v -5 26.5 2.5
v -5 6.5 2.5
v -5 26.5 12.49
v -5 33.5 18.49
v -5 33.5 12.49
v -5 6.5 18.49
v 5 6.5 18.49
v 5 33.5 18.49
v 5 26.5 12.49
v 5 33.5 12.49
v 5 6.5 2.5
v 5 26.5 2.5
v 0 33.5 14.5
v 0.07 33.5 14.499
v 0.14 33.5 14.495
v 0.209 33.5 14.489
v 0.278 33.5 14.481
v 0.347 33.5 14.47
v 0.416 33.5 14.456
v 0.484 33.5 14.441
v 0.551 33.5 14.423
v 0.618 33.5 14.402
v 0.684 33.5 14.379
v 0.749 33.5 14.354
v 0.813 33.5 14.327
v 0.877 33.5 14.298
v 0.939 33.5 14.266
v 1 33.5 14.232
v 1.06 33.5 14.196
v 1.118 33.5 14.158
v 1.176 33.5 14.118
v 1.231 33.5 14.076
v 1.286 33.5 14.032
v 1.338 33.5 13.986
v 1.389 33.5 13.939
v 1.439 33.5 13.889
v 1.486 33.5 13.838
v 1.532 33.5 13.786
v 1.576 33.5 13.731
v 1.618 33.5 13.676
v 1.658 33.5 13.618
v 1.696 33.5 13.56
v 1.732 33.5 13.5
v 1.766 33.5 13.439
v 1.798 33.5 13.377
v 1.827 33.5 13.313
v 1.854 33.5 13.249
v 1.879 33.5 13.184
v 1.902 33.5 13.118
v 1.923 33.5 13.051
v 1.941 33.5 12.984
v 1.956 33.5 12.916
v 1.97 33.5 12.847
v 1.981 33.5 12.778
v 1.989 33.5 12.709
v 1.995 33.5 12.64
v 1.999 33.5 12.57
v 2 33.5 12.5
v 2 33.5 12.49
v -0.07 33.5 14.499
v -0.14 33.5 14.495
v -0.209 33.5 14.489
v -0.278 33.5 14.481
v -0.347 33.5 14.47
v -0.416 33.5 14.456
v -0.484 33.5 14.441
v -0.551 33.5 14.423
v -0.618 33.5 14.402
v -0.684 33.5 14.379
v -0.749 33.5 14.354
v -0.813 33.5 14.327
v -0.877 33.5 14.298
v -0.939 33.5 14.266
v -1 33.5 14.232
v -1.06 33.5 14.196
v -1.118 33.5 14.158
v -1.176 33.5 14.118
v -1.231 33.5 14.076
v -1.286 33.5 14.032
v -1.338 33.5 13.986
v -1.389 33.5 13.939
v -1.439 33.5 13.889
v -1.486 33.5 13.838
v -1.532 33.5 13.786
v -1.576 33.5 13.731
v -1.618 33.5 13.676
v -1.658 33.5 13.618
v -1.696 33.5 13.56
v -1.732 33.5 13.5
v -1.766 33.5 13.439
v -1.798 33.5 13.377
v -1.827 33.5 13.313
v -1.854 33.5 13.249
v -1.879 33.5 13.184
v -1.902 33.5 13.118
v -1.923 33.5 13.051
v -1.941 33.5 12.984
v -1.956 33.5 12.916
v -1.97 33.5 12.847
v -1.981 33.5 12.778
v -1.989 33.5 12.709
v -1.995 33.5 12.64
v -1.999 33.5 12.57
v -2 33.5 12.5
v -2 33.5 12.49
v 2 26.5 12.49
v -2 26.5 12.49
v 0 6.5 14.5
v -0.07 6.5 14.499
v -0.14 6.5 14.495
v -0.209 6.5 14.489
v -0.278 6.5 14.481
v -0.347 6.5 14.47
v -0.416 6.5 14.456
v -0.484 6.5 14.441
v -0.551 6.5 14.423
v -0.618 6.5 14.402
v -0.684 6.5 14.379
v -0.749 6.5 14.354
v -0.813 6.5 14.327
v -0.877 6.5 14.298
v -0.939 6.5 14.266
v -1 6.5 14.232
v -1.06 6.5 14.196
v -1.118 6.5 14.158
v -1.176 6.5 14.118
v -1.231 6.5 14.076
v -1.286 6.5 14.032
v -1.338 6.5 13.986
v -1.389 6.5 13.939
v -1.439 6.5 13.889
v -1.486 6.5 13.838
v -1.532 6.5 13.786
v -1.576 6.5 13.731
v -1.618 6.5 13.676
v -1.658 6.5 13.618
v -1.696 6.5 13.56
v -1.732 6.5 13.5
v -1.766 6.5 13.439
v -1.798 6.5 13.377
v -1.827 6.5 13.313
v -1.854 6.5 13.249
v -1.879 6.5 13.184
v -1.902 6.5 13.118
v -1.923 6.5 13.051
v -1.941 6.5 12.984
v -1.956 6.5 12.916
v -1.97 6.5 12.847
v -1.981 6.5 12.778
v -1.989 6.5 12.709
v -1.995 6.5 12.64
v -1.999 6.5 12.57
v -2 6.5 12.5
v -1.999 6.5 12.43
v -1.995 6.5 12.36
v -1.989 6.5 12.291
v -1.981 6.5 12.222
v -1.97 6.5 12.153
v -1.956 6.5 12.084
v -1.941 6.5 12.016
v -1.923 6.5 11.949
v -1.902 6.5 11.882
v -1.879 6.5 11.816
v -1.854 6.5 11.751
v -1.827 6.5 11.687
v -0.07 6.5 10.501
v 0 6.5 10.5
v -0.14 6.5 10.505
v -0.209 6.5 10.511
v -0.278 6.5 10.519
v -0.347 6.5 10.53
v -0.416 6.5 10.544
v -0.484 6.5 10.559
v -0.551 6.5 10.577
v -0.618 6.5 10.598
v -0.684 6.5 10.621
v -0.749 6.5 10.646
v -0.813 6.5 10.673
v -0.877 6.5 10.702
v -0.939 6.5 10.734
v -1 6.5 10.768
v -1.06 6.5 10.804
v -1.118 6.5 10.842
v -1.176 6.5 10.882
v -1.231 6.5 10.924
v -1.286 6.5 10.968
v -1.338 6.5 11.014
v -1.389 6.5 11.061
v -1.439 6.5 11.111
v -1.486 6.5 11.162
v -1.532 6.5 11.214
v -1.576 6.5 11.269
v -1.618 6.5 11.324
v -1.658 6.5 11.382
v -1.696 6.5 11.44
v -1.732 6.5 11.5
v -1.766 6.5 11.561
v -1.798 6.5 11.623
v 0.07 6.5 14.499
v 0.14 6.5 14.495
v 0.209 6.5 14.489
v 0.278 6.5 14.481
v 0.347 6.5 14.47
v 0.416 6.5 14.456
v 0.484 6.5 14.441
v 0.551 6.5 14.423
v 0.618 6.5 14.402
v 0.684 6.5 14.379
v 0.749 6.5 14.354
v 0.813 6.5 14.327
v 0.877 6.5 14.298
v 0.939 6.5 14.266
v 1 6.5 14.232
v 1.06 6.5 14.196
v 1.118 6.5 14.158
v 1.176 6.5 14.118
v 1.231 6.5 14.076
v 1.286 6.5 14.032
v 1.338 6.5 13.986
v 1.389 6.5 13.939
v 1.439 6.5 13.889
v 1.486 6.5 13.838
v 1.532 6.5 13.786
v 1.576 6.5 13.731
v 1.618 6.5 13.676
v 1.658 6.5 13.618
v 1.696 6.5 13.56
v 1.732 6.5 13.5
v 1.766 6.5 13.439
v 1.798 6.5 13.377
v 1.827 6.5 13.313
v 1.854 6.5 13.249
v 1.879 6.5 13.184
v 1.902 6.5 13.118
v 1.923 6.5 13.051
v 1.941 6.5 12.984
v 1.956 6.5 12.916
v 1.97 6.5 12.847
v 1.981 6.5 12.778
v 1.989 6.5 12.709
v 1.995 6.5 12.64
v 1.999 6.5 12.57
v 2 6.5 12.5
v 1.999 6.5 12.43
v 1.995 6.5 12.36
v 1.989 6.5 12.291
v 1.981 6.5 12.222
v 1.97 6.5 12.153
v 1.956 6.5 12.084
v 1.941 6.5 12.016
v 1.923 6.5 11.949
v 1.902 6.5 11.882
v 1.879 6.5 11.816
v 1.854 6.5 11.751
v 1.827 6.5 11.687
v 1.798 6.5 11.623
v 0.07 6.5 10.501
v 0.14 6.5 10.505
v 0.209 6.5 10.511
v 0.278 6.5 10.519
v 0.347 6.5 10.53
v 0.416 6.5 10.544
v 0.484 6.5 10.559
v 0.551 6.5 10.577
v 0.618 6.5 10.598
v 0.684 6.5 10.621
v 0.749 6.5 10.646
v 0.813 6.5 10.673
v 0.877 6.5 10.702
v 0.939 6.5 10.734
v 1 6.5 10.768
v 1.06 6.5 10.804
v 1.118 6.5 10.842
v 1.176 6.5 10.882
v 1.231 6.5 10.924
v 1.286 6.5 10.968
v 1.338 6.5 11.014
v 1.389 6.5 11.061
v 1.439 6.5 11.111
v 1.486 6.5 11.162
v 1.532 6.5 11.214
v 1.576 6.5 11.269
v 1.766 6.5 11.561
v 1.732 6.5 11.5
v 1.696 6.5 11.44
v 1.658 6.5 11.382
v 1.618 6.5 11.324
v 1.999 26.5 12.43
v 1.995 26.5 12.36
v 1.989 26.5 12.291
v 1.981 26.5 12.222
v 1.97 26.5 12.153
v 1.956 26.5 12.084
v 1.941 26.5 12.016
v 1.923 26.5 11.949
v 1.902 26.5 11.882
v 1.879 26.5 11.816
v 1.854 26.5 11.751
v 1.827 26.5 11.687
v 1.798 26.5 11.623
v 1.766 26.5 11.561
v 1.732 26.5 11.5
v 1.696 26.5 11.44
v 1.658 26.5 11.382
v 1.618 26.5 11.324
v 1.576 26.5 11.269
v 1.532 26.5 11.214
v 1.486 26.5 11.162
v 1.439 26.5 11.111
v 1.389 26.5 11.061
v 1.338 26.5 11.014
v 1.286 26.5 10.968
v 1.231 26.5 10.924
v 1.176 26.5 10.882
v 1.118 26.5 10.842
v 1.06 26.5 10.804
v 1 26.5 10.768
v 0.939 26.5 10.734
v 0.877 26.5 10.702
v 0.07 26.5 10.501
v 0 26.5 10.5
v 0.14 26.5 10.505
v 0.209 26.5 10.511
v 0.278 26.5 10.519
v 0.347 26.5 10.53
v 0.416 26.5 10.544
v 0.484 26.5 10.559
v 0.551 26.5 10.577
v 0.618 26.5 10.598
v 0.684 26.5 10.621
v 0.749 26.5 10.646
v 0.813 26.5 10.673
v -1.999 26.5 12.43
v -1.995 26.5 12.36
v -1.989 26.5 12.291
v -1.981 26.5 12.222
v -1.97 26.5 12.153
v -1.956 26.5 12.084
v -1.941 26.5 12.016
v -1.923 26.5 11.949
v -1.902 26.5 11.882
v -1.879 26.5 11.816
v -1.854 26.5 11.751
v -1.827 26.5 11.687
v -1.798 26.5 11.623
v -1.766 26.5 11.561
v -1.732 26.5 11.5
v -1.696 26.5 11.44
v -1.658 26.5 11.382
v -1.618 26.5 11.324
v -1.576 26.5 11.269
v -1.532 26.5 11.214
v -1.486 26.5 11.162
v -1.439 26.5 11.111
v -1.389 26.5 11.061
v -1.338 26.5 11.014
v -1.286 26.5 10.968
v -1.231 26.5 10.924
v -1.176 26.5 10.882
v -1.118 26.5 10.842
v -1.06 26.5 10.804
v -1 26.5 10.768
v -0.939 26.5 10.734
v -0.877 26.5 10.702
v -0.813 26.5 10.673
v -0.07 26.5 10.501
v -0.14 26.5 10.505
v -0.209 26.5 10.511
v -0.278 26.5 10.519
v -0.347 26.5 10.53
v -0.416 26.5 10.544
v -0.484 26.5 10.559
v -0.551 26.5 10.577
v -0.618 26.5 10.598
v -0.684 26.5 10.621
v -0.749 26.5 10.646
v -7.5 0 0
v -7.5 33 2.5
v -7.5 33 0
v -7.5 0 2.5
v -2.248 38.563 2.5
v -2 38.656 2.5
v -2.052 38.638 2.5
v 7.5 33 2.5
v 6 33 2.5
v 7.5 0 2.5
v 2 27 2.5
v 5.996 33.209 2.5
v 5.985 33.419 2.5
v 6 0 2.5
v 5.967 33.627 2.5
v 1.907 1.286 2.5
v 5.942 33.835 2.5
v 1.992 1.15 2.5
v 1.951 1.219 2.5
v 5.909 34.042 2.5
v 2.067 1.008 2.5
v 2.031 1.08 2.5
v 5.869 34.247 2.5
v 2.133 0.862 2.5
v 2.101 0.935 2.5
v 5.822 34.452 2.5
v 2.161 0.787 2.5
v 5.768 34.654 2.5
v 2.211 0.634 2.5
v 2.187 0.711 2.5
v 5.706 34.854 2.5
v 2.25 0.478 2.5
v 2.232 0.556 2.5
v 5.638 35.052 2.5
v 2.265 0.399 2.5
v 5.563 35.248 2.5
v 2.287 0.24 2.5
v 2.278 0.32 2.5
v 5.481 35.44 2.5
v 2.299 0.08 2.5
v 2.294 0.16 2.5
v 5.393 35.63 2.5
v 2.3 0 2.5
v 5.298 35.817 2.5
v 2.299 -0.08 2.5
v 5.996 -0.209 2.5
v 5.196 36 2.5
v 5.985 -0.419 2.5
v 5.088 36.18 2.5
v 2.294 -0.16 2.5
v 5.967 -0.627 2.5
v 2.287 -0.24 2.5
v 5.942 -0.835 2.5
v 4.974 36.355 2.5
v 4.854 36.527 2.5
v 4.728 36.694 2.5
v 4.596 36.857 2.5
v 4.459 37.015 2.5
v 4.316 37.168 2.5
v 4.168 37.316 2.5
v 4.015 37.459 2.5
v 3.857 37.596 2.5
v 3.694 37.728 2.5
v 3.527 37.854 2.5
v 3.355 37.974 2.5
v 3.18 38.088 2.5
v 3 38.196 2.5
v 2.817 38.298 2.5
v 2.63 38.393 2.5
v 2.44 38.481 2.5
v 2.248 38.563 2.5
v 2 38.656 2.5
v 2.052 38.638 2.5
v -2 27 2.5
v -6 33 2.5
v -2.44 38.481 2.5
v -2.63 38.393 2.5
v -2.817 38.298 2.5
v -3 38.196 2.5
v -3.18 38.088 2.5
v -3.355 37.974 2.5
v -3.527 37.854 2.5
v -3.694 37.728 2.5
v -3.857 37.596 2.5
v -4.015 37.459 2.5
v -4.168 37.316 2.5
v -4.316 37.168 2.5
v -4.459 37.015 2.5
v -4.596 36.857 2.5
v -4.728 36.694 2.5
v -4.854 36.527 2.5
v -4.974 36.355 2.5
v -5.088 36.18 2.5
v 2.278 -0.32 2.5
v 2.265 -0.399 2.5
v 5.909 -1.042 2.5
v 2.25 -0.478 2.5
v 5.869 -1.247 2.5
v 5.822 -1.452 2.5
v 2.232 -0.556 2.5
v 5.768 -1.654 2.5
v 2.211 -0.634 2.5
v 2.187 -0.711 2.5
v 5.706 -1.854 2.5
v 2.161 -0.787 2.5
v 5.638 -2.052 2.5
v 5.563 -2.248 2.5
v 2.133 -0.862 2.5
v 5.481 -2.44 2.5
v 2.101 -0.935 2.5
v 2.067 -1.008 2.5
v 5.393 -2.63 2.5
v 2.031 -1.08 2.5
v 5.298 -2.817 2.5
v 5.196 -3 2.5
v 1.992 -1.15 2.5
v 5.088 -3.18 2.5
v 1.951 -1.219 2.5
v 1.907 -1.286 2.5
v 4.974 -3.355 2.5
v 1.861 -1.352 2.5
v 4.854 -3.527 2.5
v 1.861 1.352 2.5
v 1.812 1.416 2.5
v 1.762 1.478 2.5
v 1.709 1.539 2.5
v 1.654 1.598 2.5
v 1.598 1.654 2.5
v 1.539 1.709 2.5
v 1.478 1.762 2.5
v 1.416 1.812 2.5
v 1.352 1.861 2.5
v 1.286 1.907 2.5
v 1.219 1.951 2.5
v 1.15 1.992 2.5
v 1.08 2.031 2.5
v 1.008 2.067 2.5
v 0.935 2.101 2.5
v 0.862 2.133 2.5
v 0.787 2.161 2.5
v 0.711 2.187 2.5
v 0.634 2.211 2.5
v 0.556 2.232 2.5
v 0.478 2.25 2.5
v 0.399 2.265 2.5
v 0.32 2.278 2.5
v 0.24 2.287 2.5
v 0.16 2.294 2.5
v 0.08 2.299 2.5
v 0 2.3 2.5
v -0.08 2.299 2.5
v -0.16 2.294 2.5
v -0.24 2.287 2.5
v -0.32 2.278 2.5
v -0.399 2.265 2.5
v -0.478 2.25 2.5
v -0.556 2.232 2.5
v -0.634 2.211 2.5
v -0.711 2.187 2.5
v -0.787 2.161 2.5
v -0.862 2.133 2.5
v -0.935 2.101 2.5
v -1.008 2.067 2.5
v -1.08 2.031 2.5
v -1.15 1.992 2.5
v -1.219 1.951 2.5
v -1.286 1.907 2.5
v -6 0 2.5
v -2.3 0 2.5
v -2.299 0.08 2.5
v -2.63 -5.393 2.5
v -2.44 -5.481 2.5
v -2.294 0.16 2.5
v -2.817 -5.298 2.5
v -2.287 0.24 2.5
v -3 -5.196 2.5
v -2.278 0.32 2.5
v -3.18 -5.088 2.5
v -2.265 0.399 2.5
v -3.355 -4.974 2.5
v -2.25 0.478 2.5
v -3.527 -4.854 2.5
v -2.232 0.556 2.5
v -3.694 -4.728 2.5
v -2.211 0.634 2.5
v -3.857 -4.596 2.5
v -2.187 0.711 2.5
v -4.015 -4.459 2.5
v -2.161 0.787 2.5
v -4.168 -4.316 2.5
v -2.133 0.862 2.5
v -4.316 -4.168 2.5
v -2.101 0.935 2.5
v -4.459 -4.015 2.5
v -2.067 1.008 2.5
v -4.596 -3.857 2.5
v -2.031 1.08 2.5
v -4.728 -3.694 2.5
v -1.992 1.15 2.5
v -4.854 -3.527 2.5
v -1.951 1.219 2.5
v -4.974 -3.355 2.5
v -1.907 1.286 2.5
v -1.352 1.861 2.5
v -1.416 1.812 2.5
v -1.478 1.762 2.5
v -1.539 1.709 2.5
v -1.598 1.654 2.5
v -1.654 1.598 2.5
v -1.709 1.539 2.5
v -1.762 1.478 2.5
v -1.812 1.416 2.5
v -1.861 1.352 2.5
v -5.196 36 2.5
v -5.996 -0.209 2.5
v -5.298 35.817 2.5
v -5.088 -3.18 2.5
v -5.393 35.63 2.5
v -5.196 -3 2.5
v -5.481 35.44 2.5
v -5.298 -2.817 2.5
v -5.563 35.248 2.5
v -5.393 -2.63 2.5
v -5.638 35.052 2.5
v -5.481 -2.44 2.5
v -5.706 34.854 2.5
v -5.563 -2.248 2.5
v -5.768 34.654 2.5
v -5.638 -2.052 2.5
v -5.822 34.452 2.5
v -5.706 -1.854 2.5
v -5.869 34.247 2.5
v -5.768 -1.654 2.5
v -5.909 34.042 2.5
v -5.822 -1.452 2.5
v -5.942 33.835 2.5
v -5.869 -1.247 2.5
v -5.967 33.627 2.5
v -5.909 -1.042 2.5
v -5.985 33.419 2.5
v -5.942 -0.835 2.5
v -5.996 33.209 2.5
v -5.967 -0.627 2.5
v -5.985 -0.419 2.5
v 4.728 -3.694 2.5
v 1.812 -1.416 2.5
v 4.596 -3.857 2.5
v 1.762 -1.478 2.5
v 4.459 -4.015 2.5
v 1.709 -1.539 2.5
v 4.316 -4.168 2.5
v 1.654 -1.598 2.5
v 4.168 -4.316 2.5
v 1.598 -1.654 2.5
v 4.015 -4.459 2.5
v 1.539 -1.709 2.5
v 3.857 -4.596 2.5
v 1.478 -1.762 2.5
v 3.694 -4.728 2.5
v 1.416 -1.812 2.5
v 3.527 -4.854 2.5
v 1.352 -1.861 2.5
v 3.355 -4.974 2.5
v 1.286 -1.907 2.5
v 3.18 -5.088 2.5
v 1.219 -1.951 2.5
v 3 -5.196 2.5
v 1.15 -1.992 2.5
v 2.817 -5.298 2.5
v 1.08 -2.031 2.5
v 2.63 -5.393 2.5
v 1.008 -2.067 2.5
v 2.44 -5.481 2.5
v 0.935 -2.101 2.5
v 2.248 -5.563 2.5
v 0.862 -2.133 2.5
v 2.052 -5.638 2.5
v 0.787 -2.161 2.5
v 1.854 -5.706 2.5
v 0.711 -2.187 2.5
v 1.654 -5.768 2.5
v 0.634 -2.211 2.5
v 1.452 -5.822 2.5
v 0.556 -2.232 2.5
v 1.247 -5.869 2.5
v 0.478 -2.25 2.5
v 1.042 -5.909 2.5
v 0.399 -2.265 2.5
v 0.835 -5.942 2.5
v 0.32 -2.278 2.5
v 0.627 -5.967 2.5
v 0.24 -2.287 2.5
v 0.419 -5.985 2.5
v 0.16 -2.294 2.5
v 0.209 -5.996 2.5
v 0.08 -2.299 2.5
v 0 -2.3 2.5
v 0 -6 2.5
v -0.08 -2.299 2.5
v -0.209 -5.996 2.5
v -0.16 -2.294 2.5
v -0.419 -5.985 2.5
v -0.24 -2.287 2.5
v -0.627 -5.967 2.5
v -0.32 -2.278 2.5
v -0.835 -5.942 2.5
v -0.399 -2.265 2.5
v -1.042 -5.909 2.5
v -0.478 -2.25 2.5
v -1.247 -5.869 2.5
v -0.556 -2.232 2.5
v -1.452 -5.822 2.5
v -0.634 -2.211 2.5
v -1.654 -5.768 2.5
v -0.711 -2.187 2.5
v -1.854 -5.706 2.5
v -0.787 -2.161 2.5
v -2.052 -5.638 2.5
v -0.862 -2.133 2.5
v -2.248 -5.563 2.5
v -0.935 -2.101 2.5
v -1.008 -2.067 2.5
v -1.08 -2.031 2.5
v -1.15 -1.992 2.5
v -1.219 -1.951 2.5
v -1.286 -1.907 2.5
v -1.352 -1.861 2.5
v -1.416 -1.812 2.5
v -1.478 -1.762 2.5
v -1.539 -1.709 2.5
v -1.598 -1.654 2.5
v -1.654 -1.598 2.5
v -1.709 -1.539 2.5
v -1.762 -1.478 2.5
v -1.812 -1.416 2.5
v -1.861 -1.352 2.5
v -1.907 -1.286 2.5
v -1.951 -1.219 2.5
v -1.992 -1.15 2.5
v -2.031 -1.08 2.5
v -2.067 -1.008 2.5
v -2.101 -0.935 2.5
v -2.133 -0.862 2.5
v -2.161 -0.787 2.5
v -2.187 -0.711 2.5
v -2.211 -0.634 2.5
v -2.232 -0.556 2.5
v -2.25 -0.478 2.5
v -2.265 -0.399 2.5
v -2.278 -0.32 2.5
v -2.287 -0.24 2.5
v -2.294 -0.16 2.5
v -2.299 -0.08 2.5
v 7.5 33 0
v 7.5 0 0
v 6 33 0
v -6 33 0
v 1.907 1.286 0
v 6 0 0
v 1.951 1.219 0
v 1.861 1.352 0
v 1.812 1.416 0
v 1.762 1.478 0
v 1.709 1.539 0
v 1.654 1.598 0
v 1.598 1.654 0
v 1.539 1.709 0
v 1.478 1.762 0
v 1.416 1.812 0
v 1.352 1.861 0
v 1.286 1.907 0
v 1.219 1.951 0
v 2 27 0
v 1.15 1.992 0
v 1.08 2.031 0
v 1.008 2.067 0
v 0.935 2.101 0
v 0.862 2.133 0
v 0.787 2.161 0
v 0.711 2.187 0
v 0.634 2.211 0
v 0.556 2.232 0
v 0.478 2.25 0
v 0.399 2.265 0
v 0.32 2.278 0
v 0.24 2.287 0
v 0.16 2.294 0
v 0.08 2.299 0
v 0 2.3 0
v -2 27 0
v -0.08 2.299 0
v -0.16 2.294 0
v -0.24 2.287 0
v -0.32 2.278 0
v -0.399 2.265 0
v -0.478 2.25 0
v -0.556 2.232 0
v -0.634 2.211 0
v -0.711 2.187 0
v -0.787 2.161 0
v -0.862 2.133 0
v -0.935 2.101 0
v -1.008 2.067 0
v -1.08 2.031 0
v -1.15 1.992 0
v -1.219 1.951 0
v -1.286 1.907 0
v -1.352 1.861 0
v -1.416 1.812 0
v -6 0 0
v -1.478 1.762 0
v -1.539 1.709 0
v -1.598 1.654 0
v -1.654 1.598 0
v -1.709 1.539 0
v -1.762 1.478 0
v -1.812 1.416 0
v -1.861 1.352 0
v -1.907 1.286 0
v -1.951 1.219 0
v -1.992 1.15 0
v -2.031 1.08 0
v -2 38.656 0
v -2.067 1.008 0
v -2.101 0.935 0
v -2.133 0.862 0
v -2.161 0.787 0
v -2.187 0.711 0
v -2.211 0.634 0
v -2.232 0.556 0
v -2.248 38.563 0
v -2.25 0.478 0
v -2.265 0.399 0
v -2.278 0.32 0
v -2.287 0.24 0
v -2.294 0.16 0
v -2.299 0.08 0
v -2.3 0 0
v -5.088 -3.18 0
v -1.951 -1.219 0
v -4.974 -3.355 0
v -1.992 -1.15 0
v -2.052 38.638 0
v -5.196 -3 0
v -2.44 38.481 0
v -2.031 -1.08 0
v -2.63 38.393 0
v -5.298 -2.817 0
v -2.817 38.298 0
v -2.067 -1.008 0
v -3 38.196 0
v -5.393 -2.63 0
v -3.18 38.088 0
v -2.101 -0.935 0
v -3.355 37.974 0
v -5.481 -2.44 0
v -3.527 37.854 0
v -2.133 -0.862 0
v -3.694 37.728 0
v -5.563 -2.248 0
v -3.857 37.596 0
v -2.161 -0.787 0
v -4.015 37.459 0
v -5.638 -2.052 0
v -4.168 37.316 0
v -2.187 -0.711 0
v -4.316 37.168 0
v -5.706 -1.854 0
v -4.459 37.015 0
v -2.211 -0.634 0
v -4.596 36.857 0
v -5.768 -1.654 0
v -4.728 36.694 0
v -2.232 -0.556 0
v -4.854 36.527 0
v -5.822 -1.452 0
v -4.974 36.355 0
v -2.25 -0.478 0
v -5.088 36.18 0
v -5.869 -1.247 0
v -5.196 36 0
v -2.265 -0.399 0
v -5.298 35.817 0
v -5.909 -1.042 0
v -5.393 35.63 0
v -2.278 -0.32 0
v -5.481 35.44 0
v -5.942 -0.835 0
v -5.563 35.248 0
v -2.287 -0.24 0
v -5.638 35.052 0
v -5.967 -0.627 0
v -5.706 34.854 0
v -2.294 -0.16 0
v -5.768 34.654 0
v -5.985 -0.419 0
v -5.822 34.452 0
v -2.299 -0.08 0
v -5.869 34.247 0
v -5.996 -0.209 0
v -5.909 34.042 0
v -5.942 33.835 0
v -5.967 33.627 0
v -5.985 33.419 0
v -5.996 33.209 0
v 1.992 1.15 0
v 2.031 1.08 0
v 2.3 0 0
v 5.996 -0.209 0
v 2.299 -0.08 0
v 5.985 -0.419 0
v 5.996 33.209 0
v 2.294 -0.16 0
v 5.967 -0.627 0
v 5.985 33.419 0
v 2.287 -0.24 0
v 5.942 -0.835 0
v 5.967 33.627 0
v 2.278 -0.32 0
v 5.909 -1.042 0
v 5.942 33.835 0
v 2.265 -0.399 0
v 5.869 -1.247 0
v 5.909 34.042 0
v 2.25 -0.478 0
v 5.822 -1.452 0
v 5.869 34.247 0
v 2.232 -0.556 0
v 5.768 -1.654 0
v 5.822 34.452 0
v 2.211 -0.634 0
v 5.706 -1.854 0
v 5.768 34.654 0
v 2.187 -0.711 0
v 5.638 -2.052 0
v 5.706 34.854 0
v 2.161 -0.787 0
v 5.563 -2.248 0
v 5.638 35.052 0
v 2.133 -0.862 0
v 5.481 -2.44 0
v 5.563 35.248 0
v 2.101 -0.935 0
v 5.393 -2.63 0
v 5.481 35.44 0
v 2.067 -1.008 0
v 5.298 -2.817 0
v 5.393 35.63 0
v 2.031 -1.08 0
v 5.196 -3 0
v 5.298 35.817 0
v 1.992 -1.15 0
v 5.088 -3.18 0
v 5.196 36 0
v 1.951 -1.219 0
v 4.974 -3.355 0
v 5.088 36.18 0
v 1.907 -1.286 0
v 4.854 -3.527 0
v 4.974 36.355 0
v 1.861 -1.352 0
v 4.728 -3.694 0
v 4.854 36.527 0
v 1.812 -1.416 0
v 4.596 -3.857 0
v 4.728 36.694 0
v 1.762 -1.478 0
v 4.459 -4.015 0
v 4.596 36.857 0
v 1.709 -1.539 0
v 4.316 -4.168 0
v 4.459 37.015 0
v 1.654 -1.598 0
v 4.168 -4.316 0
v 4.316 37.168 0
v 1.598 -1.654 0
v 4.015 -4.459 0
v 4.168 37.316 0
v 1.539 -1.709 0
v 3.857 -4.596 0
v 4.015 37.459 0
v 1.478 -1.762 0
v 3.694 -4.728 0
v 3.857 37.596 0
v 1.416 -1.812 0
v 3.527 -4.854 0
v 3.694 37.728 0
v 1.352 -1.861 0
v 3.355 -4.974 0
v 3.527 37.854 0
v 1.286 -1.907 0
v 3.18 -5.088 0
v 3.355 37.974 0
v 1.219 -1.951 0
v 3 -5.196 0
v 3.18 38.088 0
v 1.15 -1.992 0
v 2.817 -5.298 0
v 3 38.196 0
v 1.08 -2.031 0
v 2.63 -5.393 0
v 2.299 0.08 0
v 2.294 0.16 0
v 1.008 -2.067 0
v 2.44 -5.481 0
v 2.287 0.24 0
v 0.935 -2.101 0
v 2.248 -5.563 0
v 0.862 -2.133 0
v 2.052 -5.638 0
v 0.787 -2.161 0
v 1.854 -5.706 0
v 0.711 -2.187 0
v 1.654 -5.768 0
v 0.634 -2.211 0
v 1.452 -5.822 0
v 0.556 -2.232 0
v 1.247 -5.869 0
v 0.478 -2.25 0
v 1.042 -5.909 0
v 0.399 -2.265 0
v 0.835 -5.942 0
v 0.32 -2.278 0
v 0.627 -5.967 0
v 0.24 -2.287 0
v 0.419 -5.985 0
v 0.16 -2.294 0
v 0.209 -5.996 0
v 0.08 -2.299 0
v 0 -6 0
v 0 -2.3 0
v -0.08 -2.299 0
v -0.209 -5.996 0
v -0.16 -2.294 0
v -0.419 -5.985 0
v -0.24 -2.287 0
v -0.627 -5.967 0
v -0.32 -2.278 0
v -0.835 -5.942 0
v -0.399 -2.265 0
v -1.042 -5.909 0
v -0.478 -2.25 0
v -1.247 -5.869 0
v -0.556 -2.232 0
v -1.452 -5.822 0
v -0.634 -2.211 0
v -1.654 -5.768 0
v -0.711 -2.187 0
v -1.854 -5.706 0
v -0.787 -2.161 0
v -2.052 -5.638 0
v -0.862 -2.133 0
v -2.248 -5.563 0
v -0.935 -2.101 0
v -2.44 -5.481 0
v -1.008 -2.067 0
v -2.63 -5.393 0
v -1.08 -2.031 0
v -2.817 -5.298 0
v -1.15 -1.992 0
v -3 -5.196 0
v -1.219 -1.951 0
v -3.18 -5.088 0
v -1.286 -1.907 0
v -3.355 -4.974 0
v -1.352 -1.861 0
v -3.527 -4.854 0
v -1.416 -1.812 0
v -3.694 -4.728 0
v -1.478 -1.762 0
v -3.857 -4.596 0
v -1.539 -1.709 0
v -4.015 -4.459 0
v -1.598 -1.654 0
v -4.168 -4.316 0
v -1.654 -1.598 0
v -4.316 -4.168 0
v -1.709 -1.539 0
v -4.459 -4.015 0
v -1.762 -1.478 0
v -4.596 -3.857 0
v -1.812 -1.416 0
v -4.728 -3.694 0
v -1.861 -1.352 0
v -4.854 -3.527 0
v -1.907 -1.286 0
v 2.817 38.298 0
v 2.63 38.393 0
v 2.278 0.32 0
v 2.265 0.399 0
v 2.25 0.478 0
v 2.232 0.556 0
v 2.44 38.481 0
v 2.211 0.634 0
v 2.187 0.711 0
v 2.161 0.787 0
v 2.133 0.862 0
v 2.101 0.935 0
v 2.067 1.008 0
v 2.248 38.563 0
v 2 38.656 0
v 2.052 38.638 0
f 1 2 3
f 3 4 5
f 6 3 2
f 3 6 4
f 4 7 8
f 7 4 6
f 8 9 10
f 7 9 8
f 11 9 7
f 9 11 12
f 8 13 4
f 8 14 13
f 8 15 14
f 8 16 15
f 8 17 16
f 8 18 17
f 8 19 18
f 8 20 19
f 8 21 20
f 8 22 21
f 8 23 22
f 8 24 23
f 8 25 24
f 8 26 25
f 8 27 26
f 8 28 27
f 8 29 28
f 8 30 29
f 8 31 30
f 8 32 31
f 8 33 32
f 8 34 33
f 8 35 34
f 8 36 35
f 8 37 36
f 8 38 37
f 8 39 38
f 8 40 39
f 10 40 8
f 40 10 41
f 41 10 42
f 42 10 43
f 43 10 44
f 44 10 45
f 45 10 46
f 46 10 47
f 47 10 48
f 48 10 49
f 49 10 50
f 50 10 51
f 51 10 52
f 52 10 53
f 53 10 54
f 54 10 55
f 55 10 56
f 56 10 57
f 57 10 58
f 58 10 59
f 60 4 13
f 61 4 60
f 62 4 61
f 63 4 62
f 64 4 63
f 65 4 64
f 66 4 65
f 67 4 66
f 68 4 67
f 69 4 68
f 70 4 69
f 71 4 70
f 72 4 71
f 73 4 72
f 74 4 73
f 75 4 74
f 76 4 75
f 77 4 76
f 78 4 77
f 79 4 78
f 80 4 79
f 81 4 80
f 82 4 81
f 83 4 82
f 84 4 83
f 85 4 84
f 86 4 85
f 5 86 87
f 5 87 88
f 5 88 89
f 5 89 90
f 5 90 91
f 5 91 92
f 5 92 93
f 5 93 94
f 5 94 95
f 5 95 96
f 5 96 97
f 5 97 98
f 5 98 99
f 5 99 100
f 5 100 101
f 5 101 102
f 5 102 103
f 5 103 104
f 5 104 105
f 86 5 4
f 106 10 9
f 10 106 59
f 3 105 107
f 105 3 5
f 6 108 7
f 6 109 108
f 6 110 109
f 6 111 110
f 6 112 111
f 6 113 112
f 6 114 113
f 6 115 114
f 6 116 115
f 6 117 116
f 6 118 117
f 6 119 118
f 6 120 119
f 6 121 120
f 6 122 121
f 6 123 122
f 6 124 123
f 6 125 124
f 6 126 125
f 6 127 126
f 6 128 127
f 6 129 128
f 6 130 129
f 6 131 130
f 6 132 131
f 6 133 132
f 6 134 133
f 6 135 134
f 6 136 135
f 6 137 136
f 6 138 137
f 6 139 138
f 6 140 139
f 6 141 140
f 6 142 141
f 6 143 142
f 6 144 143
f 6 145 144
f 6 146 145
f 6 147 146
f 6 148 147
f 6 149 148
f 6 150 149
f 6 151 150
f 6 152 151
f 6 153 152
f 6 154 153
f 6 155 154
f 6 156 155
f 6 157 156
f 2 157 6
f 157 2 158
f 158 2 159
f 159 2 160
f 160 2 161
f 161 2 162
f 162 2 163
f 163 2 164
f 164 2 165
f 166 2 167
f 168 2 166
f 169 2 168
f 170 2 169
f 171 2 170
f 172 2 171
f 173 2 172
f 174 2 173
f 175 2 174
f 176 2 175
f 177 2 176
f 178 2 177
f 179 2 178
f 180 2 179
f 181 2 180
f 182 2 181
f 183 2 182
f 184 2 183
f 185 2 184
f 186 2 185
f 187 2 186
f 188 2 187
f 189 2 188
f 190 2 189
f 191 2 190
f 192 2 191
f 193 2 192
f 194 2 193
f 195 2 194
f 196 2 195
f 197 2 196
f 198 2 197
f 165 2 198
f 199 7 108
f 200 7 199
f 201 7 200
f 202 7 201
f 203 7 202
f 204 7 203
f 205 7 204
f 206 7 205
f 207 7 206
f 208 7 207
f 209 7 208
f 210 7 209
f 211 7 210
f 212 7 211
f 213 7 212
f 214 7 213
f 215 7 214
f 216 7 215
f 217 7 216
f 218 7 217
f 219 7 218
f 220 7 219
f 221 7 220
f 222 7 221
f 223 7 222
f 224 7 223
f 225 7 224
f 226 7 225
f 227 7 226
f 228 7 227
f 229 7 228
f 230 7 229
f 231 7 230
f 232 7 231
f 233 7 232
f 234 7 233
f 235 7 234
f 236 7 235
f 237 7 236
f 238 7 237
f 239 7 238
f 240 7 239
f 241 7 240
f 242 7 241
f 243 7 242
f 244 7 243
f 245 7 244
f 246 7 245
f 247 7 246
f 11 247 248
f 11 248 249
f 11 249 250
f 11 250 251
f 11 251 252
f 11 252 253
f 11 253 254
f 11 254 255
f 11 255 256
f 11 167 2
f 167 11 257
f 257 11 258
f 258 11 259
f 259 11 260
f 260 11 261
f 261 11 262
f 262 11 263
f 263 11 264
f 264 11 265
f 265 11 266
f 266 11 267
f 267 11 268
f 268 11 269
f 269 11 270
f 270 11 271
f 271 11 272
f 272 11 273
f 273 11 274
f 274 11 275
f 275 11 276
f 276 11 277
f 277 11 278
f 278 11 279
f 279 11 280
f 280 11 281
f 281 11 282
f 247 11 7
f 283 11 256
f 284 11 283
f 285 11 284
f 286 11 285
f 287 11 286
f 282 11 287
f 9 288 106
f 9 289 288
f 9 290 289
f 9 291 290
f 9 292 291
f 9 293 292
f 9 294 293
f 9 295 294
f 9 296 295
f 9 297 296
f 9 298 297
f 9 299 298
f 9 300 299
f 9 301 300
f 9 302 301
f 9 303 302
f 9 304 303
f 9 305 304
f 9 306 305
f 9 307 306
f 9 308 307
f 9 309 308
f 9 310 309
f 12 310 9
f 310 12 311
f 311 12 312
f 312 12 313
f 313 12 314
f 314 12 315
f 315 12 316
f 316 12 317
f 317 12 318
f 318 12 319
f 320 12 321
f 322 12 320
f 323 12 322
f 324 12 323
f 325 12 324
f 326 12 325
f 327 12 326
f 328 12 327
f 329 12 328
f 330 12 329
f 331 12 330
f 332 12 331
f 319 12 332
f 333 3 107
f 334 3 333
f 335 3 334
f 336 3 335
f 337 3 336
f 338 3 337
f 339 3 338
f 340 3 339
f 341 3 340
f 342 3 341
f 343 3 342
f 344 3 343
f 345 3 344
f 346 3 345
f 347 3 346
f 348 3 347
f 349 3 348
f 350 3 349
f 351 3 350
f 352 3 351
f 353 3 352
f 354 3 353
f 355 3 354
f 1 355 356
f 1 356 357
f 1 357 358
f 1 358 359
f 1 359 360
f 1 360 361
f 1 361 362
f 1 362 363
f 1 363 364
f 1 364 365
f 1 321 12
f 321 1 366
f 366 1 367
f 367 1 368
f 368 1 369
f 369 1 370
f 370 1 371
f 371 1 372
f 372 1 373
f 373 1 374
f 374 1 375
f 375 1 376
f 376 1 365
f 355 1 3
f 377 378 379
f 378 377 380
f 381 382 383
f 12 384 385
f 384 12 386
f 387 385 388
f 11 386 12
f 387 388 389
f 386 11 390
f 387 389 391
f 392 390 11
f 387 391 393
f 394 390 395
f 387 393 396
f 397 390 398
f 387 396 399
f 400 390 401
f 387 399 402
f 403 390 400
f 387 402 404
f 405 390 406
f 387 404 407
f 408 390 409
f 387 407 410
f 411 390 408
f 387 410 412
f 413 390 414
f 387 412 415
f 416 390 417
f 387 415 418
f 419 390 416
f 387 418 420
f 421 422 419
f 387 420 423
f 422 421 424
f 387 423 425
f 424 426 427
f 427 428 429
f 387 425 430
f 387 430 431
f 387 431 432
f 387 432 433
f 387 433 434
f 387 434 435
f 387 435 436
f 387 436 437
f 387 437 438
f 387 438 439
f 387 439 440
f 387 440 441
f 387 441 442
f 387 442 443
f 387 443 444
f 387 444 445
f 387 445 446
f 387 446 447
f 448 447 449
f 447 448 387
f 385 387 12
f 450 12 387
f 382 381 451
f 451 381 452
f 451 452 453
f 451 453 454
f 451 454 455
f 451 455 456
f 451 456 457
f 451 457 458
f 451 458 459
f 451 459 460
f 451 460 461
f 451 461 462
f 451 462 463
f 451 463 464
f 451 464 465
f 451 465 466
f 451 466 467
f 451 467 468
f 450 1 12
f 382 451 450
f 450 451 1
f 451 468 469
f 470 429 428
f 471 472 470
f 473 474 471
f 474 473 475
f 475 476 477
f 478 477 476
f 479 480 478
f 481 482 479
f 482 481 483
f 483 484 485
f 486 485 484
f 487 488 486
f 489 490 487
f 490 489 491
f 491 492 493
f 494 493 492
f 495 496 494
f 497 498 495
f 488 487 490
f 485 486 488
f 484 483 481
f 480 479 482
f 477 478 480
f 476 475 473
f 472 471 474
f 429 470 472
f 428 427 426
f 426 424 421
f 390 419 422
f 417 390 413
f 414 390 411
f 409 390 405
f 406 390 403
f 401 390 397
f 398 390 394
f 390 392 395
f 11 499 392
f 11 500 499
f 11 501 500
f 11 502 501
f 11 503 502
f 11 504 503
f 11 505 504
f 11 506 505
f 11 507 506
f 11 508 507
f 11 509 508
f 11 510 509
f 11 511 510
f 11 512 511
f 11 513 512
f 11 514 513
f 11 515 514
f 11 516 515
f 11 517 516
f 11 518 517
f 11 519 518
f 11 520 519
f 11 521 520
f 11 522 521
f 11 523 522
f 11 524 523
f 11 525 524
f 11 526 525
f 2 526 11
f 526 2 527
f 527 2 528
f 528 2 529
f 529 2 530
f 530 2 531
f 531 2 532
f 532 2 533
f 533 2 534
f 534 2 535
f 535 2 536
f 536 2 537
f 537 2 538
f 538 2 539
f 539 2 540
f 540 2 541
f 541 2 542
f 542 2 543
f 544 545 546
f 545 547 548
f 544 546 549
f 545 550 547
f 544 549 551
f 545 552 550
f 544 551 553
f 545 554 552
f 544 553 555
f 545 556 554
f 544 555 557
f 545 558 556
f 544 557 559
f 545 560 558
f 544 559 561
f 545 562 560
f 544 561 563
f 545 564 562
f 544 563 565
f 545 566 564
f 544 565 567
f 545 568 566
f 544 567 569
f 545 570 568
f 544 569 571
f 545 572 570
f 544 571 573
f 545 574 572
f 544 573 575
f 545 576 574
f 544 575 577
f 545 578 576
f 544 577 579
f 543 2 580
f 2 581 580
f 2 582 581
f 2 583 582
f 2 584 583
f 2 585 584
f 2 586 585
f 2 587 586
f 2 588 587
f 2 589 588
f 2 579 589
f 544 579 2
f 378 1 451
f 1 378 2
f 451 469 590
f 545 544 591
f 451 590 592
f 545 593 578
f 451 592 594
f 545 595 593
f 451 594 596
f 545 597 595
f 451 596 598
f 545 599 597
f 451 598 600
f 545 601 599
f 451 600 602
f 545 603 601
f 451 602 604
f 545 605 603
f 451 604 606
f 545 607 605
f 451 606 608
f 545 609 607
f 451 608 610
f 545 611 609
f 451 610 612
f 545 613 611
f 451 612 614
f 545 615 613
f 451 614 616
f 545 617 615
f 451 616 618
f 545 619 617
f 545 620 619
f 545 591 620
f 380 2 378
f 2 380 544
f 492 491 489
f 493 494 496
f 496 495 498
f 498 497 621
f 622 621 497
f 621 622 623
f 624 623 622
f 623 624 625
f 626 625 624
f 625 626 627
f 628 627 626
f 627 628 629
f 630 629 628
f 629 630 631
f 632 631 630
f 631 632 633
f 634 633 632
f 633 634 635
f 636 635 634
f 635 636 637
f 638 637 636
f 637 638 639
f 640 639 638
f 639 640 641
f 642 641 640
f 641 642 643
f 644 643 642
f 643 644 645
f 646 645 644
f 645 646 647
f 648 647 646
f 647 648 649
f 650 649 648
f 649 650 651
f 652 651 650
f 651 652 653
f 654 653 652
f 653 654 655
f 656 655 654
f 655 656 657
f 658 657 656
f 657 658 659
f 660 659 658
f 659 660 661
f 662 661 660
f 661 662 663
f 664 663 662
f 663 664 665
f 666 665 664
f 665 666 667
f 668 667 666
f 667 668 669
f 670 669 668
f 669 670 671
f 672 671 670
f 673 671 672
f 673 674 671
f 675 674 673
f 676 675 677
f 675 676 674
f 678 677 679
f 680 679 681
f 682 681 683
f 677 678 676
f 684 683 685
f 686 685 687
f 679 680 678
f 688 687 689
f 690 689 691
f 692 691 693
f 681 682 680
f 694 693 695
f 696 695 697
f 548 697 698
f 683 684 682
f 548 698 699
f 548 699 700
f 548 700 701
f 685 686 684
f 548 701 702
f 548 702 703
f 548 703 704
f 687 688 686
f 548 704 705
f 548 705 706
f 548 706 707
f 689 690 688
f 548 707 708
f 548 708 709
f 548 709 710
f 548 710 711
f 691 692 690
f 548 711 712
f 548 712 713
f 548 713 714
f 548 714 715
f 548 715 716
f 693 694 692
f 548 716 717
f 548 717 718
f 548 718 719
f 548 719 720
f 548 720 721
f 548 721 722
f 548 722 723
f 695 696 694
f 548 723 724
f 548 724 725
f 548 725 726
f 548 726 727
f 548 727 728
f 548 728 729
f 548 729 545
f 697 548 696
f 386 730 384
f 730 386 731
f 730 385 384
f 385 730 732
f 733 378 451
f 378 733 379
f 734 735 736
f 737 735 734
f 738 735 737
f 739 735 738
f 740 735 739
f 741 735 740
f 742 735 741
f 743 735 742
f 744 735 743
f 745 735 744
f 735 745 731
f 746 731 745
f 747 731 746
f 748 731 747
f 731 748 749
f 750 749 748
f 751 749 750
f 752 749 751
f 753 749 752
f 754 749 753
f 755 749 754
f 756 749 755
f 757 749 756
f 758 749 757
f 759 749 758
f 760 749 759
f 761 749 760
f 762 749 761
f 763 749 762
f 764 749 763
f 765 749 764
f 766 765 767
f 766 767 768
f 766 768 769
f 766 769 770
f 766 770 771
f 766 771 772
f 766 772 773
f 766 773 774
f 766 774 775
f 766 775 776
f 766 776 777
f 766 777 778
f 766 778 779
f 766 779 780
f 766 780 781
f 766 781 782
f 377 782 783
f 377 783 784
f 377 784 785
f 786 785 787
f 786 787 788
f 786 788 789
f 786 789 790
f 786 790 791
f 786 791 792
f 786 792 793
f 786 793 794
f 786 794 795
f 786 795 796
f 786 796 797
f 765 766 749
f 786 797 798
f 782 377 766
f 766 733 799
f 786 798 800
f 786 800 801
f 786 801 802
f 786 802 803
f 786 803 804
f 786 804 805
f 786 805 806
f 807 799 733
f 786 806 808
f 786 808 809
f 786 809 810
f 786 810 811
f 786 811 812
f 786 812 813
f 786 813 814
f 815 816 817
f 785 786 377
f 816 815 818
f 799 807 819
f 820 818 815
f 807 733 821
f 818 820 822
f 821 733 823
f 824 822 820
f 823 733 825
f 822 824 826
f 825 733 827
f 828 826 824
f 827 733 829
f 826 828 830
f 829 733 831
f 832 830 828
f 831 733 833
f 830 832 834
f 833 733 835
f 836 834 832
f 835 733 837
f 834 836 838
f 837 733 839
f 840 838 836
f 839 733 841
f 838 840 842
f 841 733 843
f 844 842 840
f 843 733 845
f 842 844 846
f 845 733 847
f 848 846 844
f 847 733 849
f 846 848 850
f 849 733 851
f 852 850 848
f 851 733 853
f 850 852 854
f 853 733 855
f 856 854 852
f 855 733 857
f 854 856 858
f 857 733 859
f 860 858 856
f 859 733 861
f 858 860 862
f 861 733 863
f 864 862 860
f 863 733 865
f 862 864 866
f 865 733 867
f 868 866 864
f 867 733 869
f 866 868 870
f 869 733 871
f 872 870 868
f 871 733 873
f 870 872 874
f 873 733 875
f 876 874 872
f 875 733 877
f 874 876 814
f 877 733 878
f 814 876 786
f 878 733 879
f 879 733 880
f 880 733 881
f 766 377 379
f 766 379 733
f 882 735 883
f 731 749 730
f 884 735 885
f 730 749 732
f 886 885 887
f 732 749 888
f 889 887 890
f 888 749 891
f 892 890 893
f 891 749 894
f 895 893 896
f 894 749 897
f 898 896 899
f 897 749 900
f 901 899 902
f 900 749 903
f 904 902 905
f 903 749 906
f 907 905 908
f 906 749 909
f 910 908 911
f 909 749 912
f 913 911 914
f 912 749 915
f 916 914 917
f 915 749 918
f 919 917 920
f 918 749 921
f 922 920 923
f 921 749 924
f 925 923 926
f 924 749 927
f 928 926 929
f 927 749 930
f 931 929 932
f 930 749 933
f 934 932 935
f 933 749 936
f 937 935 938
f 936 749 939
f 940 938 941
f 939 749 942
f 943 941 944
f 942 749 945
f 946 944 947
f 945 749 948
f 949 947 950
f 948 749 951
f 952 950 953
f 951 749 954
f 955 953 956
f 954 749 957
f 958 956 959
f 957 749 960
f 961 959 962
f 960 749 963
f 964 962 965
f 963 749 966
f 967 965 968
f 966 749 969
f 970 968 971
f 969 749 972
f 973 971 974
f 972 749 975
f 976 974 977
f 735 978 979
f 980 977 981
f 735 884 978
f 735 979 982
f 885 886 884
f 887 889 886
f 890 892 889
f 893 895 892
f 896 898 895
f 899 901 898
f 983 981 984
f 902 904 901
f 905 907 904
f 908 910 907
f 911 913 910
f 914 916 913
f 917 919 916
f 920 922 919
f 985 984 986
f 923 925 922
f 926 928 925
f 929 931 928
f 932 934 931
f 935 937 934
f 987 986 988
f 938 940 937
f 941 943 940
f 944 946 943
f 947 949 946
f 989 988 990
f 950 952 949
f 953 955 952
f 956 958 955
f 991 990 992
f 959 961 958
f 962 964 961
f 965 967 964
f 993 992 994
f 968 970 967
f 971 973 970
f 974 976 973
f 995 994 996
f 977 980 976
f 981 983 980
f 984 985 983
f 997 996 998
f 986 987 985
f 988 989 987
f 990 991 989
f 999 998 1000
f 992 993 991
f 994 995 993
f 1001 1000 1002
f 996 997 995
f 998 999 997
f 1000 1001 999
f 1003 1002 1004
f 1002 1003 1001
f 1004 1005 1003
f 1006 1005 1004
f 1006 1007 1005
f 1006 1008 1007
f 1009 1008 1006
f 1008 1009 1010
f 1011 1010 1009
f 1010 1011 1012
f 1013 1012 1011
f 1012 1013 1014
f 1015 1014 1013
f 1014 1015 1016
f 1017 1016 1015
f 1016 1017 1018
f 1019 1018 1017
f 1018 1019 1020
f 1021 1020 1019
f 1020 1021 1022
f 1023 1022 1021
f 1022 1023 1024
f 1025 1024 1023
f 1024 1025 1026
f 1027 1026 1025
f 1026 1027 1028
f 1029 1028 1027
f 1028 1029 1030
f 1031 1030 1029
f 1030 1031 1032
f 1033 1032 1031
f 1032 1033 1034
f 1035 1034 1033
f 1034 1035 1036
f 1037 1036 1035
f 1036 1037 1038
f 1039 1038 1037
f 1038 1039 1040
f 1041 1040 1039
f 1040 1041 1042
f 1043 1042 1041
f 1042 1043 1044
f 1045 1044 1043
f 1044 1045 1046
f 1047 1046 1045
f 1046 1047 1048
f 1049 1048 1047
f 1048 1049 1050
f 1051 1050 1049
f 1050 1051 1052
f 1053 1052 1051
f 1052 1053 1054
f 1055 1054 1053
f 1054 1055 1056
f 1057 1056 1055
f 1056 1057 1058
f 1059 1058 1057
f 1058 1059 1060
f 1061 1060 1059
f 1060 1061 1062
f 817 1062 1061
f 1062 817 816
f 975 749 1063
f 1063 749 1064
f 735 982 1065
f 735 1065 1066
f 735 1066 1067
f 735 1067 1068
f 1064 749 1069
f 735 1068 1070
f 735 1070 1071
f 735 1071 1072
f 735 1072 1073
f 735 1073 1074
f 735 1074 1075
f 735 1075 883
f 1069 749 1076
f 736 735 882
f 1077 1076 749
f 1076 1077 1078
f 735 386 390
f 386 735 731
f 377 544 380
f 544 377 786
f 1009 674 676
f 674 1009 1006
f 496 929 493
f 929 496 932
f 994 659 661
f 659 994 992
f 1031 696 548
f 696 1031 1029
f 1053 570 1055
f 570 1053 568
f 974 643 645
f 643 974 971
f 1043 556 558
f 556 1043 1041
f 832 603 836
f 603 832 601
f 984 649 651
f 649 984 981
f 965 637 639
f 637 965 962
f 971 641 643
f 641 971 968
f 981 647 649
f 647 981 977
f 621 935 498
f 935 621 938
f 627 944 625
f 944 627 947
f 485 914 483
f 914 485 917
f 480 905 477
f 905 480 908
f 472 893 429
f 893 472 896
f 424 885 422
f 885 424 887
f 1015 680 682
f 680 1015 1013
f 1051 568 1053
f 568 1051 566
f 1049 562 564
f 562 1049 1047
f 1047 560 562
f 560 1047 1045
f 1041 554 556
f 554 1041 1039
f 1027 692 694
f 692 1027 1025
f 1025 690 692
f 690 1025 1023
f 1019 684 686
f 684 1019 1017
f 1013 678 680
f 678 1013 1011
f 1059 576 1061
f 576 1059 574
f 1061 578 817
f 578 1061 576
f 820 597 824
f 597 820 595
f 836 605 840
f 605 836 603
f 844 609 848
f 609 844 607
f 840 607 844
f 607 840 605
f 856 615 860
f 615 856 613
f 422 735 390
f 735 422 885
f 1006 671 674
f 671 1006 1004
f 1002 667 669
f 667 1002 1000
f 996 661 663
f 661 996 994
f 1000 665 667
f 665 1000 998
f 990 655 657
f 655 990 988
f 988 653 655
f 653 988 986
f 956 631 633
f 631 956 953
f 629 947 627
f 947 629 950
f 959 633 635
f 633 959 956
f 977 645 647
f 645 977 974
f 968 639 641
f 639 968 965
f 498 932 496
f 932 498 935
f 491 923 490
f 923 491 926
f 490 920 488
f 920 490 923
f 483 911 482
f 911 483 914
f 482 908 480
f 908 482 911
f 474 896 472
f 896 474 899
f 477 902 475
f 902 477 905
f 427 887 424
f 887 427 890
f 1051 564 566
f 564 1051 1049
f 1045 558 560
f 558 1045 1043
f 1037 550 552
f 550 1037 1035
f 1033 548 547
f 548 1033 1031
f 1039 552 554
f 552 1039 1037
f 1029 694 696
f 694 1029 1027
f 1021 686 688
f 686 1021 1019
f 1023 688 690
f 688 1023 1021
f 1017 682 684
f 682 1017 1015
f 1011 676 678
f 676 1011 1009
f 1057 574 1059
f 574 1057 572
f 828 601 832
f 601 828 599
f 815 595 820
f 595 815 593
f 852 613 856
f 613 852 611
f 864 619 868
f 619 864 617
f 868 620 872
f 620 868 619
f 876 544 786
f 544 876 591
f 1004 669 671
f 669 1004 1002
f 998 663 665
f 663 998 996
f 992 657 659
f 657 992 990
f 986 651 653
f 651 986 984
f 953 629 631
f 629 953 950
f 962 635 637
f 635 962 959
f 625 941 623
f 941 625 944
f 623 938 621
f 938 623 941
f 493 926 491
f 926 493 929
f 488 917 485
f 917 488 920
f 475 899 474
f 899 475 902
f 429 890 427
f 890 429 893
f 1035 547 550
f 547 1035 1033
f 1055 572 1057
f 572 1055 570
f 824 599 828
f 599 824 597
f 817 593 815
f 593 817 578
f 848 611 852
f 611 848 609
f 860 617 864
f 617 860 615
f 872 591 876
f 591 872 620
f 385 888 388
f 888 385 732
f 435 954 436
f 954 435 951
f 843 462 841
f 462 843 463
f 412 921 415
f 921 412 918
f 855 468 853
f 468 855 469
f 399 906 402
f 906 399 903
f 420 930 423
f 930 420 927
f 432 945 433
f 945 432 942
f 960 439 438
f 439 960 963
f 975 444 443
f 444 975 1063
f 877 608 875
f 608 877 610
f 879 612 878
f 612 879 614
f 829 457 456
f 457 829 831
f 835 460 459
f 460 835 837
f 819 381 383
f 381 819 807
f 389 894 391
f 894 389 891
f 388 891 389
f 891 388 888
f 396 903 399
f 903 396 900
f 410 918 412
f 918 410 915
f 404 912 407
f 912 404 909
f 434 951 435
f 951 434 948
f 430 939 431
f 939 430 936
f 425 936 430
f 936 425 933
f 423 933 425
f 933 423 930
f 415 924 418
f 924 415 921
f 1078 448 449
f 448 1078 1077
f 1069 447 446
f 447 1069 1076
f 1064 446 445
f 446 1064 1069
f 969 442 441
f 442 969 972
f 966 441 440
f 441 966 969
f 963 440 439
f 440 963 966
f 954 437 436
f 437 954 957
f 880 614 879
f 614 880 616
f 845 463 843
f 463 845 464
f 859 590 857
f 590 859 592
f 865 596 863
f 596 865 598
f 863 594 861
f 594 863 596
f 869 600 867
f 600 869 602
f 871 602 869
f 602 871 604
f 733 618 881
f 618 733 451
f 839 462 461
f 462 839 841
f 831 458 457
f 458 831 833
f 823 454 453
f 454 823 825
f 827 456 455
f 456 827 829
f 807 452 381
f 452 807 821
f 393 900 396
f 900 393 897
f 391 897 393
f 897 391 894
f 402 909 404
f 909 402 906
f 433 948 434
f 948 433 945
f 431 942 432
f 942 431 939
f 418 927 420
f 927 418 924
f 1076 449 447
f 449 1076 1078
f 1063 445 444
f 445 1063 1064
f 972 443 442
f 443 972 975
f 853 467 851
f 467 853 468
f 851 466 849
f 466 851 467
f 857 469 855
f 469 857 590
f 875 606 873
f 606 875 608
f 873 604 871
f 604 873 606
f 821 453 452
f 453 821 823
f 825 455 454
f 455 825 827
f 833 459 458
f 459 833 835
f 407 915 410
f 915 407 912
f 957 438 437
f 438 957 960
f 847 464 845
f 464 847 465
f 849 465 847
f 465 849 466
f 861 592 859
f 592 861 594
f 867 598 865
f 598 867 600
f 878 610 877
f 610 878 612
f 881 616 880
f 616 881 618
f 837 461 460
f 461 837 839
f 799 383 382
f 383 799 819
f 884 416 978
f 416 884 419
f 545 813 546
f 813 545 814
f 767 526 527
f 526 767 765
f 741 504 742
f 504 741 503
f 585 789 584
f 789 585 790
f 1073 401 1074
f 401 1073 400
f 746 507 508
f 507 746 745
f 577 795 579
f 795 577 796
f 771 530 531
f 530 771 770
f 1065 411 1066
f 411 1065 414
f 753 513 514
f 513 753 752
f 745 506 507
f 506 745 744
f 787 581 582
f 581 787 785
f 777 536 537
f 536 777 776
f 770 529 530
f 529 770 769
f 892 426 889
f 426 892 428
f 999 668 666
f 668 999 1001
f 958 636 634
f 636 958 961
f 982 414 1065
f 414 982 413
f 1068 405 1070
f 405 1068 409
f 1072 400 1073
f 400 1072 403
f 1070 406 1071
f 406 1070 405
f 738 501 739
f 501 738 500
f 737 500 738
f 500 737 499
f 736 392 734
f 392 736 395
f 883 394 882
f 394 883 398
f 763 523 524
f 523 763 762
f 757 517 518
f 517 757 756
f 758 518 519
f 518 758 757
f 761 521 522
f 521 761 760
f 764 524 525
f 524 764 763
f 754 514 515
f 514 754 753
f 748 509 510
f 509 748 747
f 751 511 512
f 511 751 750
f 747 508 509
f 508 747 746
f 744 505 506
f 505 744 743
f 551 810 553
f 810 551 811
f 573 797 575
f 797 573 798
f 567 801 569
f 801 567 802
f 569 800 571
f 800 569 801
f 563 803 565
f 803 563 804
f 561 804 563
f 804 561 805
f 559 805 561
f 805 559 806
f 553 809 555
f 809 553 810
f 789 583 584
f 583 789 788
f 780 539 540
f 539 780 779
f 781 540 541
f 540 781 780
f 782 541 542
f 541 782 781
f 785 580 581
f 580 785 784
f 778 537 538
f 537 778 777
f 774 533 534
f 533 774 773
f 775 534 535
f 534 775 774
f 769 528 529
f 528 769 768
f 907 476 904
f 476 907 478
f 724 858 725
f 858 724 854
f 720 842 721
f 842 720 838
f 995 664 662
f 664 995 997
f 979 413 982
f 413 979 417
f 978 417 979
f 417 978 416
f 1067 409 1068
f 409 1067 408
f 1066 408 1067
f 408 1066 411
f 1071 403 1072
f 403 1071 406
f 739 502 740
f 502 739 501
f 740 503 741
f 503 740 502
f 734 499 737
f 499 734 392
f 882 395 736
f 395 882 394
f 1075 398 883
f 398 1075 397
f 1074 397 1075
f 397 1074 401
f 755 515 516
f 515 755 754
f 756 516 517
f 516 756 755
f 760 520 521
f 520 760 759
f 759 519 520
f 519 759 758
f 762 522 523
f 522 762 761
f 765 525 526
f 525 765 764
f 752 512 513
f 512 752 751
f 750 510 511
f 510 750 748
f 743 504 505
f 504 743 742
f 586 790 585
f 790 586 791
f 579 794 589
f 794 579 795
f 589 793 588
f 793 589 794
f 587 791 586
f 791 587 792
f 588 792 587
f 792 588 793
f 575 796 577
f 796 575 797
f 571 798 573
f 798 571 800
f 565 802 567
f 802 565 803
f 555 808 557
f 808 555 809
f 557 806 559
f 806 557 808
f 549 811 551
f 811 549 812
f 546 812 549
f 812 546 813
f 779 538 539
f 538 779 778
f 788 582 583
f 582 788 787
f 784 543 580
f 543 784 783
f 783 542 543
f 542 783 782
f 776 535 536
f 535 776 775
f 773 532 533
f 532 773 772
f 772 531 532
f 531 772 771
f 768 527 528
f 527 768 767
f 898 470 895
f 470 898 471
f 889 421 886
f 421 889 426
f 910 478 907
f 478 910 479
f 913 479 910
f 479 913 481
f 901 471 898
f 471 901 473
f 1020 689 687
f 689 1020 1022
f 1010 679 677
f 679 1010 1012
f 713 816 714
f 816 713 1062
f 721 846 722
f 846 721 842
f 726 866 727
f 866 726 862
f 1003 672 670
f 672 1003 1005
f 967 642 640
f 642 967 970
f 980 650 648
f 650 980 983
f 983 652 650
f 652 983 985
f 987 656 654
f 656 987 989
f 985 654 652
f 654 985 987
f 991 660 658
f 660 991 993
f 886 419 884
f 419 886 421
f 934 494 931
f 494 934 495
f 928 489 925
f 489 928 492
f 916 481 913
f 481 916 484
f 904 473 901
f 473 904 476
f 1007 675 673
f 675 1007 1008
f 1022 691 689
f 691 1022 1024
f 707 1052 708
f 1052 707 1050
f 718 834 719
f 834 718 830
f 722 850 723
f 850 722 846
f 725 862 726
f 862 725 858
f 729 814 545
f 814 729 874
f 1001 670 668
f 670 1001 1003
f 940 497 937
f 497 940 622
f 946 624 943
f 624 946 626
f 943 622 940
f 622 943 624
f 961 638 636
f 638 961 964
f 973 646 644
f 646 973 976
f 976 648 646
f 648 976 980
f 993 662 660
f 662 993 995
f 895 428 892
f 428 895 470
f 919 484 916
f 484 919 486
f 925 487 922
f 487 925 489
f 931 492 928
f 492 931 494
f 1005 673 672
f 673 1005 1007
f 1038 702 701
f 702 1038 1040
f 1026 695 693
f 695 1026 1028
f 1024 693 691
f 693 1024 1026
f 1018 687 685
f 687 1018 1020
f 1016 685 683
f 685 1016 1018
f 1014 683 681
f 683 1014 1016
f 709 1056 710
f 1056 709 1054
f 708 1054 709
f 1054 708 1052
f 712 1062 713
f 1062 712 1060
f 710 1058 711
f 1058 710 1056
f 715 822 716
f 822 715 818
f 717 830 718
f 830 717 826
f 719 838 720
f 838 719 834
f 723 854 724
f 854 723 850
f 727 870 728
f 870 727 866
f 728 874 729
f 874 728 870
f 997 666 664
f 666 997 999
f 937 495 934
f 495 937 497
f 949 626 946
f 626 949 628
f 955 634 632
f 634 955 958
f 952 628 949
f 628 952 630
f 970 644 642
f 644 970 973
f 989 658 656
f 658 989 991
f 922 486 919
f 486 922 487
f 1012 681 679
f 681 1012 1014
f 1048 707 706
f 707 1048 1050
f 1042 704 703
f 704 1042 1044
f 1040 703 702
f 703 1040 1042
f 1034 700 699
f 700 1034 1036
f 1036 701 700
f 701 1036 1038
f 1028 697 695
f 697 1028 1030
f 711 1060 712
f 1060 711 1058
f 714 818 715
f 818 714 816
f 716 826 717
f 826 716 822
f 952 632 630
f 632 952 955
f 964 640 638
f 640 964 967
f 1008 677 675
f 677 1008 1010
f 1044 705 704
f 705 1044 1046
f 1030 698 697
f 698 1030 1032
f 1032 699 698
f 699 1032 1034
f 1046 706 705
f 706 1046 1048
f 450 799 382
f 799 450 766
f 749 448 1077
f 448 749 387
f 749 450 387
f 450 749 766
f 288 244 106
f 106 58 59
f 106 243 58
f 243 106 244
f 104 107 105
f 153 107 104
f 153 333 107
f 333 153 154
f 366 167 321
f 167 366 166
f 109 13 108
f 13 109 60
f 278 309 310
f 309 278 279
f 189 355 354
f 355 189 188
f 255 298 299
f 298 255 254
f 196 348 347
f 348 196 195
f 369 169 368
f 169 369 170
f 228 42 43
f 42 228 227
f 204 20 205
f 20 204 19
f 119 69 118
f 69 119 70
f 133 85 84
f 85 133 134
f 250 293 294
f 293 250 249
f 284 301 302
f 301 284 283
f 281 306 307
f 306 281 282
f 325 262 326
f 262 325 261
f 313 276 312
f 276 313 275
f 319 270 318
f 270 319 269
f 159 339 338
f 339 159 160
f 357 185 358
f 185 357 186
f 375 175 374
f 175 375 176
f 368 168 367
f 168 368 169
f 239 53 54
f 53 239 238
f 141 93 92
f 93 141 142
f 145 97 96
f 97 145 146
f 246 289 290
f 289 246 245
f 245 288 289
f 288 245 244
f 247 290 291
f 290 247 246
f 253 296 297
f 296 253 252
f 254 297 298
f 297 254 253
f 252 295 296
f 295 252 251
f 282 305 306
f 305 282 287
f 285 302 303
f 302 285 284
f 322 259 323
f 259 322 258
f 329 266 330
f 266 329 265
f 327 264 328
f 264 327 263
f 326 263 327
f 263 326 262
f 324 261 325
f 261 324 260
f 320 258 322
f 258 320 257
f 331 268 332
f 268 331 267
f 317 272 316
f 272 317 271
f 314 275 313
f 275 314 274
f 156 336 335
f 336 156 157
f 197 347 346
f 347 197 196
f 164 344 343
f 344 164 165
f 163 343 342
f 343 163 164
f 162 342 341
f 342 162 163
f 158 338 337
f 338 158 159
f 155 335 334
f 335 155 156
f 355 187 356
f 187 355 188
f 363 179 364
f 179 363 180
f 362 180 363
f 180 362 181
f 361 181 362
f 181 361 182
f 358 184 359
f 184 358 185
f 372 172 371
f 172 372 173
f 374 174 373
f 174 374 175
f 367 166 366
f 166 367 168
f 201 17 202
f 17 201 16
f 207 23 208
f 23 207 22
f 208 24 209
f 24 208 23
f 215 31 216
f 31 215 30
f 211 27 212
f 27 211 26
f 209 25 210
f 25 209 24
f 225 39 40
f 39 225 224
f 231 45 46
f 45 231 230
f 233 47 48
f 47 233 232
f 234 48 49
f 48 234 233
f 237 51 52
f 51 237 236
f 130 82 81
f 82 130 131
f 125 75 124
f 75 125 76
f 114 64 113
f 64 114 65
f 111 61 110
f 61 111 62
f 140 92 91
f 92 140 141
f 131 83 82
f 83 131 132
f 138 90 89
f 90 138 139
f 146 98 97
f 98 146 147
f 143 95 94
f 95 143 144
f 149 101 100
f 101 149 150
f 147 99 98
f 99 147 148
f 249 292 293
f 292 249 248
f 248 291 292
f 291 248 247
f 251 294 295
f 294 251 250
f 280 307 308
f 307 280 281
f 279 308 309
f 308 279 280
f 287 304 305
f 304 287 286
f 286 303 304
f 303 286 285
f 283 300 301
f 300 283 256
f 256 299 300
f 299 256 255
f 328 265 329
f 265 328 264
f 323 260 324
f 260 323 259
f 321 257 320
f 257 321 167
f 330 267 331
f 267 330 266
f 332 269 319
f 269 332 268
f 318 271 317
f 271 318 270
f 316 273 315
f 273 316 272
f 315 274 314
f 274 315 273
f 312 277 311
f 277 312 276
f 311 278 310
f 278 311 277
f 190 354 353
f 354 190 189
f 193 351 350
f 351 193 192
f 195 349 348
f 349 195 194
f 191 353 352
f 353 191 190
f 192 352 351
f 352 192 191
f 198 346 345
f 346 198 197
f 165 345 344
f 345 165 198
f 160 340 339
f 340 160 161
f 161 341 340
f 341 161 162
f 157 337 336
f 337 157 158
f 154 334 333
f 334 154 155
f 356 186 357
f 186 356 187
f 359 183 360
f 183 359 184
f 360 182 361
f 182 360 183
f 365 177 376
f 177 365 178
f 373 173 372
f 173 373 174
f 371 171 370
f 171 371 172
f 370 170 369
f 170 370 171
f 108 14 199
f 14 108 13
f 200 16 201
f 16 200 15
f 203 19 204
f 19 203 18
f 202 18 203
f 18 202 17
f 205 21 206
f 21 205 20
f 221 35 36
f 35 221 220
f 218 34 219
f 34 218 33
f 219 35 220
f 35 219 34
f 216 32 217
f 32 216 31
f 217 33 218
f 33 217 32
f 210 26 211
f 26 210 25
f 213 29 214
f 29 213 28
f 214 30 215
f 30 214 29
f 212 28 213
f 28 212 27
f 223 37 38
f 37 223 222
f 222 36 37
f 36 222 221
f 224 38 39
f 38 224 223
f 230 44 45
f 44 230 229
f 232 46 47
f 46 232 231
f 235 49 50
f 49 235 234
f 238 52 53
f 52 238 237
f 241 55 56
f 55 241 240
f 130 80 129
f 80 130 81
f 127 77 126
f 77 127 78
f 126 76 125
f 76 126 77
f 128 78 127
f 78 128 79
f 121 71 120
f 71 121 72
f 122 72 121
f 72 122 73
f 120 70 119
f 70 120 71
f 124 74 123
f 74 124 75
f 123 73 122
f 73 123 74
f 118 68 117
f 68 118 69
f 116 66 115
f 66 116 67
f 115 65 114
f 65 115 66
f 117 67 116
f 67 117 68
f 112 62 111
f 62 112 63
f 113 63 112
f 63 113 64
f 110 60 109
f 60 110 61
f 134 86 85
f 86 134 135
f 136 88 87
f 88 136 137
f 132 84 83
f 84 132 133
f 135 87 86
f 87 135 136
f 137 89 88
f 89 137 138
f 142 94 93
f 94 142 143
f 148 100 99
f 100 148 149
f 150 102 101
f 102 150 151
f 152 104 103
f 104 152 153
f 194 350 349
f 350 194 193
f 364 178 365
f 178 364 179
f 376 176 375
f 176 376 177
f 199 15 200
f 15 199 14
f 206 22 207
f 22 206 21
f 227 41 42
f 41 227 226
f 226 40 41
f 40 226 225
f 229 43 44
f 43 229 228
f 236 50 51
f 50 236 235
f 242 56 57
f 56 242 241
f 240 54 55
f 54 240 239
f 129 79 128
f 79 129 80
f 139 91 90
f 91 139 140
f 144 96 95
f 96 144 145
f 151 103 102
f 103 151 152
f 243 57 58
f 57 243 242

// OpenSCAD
$fn = $preview ? 24 : 180;
cyl_d=12;
cube_d=15;
margin          = 0.01;

difference(){
    union(){
        translate([-5,(33-20)/2,12.5-margin])cube([10,27,6]);
        translate([-5,(33-20)/2,2.5-margin])cube([10,20,11]);
        translate([-cube_d/2,0,0])cube([cube_d,33,2.5]);
        translate([0,0,0])cylinder(h=2.5, d=cyl_d );
        translate([0,33,0])cylinder(h=2.5, d=cyl_d );
    }
 
    translate([0,0,-margin]) cylinder(h=4,d=4.6);
    translate([-2,27,-margin])cube([4,15,4]);
    #translate([0,0,12.5])rotate([-90,0,0])cylinder(h=40,d=4);

}
